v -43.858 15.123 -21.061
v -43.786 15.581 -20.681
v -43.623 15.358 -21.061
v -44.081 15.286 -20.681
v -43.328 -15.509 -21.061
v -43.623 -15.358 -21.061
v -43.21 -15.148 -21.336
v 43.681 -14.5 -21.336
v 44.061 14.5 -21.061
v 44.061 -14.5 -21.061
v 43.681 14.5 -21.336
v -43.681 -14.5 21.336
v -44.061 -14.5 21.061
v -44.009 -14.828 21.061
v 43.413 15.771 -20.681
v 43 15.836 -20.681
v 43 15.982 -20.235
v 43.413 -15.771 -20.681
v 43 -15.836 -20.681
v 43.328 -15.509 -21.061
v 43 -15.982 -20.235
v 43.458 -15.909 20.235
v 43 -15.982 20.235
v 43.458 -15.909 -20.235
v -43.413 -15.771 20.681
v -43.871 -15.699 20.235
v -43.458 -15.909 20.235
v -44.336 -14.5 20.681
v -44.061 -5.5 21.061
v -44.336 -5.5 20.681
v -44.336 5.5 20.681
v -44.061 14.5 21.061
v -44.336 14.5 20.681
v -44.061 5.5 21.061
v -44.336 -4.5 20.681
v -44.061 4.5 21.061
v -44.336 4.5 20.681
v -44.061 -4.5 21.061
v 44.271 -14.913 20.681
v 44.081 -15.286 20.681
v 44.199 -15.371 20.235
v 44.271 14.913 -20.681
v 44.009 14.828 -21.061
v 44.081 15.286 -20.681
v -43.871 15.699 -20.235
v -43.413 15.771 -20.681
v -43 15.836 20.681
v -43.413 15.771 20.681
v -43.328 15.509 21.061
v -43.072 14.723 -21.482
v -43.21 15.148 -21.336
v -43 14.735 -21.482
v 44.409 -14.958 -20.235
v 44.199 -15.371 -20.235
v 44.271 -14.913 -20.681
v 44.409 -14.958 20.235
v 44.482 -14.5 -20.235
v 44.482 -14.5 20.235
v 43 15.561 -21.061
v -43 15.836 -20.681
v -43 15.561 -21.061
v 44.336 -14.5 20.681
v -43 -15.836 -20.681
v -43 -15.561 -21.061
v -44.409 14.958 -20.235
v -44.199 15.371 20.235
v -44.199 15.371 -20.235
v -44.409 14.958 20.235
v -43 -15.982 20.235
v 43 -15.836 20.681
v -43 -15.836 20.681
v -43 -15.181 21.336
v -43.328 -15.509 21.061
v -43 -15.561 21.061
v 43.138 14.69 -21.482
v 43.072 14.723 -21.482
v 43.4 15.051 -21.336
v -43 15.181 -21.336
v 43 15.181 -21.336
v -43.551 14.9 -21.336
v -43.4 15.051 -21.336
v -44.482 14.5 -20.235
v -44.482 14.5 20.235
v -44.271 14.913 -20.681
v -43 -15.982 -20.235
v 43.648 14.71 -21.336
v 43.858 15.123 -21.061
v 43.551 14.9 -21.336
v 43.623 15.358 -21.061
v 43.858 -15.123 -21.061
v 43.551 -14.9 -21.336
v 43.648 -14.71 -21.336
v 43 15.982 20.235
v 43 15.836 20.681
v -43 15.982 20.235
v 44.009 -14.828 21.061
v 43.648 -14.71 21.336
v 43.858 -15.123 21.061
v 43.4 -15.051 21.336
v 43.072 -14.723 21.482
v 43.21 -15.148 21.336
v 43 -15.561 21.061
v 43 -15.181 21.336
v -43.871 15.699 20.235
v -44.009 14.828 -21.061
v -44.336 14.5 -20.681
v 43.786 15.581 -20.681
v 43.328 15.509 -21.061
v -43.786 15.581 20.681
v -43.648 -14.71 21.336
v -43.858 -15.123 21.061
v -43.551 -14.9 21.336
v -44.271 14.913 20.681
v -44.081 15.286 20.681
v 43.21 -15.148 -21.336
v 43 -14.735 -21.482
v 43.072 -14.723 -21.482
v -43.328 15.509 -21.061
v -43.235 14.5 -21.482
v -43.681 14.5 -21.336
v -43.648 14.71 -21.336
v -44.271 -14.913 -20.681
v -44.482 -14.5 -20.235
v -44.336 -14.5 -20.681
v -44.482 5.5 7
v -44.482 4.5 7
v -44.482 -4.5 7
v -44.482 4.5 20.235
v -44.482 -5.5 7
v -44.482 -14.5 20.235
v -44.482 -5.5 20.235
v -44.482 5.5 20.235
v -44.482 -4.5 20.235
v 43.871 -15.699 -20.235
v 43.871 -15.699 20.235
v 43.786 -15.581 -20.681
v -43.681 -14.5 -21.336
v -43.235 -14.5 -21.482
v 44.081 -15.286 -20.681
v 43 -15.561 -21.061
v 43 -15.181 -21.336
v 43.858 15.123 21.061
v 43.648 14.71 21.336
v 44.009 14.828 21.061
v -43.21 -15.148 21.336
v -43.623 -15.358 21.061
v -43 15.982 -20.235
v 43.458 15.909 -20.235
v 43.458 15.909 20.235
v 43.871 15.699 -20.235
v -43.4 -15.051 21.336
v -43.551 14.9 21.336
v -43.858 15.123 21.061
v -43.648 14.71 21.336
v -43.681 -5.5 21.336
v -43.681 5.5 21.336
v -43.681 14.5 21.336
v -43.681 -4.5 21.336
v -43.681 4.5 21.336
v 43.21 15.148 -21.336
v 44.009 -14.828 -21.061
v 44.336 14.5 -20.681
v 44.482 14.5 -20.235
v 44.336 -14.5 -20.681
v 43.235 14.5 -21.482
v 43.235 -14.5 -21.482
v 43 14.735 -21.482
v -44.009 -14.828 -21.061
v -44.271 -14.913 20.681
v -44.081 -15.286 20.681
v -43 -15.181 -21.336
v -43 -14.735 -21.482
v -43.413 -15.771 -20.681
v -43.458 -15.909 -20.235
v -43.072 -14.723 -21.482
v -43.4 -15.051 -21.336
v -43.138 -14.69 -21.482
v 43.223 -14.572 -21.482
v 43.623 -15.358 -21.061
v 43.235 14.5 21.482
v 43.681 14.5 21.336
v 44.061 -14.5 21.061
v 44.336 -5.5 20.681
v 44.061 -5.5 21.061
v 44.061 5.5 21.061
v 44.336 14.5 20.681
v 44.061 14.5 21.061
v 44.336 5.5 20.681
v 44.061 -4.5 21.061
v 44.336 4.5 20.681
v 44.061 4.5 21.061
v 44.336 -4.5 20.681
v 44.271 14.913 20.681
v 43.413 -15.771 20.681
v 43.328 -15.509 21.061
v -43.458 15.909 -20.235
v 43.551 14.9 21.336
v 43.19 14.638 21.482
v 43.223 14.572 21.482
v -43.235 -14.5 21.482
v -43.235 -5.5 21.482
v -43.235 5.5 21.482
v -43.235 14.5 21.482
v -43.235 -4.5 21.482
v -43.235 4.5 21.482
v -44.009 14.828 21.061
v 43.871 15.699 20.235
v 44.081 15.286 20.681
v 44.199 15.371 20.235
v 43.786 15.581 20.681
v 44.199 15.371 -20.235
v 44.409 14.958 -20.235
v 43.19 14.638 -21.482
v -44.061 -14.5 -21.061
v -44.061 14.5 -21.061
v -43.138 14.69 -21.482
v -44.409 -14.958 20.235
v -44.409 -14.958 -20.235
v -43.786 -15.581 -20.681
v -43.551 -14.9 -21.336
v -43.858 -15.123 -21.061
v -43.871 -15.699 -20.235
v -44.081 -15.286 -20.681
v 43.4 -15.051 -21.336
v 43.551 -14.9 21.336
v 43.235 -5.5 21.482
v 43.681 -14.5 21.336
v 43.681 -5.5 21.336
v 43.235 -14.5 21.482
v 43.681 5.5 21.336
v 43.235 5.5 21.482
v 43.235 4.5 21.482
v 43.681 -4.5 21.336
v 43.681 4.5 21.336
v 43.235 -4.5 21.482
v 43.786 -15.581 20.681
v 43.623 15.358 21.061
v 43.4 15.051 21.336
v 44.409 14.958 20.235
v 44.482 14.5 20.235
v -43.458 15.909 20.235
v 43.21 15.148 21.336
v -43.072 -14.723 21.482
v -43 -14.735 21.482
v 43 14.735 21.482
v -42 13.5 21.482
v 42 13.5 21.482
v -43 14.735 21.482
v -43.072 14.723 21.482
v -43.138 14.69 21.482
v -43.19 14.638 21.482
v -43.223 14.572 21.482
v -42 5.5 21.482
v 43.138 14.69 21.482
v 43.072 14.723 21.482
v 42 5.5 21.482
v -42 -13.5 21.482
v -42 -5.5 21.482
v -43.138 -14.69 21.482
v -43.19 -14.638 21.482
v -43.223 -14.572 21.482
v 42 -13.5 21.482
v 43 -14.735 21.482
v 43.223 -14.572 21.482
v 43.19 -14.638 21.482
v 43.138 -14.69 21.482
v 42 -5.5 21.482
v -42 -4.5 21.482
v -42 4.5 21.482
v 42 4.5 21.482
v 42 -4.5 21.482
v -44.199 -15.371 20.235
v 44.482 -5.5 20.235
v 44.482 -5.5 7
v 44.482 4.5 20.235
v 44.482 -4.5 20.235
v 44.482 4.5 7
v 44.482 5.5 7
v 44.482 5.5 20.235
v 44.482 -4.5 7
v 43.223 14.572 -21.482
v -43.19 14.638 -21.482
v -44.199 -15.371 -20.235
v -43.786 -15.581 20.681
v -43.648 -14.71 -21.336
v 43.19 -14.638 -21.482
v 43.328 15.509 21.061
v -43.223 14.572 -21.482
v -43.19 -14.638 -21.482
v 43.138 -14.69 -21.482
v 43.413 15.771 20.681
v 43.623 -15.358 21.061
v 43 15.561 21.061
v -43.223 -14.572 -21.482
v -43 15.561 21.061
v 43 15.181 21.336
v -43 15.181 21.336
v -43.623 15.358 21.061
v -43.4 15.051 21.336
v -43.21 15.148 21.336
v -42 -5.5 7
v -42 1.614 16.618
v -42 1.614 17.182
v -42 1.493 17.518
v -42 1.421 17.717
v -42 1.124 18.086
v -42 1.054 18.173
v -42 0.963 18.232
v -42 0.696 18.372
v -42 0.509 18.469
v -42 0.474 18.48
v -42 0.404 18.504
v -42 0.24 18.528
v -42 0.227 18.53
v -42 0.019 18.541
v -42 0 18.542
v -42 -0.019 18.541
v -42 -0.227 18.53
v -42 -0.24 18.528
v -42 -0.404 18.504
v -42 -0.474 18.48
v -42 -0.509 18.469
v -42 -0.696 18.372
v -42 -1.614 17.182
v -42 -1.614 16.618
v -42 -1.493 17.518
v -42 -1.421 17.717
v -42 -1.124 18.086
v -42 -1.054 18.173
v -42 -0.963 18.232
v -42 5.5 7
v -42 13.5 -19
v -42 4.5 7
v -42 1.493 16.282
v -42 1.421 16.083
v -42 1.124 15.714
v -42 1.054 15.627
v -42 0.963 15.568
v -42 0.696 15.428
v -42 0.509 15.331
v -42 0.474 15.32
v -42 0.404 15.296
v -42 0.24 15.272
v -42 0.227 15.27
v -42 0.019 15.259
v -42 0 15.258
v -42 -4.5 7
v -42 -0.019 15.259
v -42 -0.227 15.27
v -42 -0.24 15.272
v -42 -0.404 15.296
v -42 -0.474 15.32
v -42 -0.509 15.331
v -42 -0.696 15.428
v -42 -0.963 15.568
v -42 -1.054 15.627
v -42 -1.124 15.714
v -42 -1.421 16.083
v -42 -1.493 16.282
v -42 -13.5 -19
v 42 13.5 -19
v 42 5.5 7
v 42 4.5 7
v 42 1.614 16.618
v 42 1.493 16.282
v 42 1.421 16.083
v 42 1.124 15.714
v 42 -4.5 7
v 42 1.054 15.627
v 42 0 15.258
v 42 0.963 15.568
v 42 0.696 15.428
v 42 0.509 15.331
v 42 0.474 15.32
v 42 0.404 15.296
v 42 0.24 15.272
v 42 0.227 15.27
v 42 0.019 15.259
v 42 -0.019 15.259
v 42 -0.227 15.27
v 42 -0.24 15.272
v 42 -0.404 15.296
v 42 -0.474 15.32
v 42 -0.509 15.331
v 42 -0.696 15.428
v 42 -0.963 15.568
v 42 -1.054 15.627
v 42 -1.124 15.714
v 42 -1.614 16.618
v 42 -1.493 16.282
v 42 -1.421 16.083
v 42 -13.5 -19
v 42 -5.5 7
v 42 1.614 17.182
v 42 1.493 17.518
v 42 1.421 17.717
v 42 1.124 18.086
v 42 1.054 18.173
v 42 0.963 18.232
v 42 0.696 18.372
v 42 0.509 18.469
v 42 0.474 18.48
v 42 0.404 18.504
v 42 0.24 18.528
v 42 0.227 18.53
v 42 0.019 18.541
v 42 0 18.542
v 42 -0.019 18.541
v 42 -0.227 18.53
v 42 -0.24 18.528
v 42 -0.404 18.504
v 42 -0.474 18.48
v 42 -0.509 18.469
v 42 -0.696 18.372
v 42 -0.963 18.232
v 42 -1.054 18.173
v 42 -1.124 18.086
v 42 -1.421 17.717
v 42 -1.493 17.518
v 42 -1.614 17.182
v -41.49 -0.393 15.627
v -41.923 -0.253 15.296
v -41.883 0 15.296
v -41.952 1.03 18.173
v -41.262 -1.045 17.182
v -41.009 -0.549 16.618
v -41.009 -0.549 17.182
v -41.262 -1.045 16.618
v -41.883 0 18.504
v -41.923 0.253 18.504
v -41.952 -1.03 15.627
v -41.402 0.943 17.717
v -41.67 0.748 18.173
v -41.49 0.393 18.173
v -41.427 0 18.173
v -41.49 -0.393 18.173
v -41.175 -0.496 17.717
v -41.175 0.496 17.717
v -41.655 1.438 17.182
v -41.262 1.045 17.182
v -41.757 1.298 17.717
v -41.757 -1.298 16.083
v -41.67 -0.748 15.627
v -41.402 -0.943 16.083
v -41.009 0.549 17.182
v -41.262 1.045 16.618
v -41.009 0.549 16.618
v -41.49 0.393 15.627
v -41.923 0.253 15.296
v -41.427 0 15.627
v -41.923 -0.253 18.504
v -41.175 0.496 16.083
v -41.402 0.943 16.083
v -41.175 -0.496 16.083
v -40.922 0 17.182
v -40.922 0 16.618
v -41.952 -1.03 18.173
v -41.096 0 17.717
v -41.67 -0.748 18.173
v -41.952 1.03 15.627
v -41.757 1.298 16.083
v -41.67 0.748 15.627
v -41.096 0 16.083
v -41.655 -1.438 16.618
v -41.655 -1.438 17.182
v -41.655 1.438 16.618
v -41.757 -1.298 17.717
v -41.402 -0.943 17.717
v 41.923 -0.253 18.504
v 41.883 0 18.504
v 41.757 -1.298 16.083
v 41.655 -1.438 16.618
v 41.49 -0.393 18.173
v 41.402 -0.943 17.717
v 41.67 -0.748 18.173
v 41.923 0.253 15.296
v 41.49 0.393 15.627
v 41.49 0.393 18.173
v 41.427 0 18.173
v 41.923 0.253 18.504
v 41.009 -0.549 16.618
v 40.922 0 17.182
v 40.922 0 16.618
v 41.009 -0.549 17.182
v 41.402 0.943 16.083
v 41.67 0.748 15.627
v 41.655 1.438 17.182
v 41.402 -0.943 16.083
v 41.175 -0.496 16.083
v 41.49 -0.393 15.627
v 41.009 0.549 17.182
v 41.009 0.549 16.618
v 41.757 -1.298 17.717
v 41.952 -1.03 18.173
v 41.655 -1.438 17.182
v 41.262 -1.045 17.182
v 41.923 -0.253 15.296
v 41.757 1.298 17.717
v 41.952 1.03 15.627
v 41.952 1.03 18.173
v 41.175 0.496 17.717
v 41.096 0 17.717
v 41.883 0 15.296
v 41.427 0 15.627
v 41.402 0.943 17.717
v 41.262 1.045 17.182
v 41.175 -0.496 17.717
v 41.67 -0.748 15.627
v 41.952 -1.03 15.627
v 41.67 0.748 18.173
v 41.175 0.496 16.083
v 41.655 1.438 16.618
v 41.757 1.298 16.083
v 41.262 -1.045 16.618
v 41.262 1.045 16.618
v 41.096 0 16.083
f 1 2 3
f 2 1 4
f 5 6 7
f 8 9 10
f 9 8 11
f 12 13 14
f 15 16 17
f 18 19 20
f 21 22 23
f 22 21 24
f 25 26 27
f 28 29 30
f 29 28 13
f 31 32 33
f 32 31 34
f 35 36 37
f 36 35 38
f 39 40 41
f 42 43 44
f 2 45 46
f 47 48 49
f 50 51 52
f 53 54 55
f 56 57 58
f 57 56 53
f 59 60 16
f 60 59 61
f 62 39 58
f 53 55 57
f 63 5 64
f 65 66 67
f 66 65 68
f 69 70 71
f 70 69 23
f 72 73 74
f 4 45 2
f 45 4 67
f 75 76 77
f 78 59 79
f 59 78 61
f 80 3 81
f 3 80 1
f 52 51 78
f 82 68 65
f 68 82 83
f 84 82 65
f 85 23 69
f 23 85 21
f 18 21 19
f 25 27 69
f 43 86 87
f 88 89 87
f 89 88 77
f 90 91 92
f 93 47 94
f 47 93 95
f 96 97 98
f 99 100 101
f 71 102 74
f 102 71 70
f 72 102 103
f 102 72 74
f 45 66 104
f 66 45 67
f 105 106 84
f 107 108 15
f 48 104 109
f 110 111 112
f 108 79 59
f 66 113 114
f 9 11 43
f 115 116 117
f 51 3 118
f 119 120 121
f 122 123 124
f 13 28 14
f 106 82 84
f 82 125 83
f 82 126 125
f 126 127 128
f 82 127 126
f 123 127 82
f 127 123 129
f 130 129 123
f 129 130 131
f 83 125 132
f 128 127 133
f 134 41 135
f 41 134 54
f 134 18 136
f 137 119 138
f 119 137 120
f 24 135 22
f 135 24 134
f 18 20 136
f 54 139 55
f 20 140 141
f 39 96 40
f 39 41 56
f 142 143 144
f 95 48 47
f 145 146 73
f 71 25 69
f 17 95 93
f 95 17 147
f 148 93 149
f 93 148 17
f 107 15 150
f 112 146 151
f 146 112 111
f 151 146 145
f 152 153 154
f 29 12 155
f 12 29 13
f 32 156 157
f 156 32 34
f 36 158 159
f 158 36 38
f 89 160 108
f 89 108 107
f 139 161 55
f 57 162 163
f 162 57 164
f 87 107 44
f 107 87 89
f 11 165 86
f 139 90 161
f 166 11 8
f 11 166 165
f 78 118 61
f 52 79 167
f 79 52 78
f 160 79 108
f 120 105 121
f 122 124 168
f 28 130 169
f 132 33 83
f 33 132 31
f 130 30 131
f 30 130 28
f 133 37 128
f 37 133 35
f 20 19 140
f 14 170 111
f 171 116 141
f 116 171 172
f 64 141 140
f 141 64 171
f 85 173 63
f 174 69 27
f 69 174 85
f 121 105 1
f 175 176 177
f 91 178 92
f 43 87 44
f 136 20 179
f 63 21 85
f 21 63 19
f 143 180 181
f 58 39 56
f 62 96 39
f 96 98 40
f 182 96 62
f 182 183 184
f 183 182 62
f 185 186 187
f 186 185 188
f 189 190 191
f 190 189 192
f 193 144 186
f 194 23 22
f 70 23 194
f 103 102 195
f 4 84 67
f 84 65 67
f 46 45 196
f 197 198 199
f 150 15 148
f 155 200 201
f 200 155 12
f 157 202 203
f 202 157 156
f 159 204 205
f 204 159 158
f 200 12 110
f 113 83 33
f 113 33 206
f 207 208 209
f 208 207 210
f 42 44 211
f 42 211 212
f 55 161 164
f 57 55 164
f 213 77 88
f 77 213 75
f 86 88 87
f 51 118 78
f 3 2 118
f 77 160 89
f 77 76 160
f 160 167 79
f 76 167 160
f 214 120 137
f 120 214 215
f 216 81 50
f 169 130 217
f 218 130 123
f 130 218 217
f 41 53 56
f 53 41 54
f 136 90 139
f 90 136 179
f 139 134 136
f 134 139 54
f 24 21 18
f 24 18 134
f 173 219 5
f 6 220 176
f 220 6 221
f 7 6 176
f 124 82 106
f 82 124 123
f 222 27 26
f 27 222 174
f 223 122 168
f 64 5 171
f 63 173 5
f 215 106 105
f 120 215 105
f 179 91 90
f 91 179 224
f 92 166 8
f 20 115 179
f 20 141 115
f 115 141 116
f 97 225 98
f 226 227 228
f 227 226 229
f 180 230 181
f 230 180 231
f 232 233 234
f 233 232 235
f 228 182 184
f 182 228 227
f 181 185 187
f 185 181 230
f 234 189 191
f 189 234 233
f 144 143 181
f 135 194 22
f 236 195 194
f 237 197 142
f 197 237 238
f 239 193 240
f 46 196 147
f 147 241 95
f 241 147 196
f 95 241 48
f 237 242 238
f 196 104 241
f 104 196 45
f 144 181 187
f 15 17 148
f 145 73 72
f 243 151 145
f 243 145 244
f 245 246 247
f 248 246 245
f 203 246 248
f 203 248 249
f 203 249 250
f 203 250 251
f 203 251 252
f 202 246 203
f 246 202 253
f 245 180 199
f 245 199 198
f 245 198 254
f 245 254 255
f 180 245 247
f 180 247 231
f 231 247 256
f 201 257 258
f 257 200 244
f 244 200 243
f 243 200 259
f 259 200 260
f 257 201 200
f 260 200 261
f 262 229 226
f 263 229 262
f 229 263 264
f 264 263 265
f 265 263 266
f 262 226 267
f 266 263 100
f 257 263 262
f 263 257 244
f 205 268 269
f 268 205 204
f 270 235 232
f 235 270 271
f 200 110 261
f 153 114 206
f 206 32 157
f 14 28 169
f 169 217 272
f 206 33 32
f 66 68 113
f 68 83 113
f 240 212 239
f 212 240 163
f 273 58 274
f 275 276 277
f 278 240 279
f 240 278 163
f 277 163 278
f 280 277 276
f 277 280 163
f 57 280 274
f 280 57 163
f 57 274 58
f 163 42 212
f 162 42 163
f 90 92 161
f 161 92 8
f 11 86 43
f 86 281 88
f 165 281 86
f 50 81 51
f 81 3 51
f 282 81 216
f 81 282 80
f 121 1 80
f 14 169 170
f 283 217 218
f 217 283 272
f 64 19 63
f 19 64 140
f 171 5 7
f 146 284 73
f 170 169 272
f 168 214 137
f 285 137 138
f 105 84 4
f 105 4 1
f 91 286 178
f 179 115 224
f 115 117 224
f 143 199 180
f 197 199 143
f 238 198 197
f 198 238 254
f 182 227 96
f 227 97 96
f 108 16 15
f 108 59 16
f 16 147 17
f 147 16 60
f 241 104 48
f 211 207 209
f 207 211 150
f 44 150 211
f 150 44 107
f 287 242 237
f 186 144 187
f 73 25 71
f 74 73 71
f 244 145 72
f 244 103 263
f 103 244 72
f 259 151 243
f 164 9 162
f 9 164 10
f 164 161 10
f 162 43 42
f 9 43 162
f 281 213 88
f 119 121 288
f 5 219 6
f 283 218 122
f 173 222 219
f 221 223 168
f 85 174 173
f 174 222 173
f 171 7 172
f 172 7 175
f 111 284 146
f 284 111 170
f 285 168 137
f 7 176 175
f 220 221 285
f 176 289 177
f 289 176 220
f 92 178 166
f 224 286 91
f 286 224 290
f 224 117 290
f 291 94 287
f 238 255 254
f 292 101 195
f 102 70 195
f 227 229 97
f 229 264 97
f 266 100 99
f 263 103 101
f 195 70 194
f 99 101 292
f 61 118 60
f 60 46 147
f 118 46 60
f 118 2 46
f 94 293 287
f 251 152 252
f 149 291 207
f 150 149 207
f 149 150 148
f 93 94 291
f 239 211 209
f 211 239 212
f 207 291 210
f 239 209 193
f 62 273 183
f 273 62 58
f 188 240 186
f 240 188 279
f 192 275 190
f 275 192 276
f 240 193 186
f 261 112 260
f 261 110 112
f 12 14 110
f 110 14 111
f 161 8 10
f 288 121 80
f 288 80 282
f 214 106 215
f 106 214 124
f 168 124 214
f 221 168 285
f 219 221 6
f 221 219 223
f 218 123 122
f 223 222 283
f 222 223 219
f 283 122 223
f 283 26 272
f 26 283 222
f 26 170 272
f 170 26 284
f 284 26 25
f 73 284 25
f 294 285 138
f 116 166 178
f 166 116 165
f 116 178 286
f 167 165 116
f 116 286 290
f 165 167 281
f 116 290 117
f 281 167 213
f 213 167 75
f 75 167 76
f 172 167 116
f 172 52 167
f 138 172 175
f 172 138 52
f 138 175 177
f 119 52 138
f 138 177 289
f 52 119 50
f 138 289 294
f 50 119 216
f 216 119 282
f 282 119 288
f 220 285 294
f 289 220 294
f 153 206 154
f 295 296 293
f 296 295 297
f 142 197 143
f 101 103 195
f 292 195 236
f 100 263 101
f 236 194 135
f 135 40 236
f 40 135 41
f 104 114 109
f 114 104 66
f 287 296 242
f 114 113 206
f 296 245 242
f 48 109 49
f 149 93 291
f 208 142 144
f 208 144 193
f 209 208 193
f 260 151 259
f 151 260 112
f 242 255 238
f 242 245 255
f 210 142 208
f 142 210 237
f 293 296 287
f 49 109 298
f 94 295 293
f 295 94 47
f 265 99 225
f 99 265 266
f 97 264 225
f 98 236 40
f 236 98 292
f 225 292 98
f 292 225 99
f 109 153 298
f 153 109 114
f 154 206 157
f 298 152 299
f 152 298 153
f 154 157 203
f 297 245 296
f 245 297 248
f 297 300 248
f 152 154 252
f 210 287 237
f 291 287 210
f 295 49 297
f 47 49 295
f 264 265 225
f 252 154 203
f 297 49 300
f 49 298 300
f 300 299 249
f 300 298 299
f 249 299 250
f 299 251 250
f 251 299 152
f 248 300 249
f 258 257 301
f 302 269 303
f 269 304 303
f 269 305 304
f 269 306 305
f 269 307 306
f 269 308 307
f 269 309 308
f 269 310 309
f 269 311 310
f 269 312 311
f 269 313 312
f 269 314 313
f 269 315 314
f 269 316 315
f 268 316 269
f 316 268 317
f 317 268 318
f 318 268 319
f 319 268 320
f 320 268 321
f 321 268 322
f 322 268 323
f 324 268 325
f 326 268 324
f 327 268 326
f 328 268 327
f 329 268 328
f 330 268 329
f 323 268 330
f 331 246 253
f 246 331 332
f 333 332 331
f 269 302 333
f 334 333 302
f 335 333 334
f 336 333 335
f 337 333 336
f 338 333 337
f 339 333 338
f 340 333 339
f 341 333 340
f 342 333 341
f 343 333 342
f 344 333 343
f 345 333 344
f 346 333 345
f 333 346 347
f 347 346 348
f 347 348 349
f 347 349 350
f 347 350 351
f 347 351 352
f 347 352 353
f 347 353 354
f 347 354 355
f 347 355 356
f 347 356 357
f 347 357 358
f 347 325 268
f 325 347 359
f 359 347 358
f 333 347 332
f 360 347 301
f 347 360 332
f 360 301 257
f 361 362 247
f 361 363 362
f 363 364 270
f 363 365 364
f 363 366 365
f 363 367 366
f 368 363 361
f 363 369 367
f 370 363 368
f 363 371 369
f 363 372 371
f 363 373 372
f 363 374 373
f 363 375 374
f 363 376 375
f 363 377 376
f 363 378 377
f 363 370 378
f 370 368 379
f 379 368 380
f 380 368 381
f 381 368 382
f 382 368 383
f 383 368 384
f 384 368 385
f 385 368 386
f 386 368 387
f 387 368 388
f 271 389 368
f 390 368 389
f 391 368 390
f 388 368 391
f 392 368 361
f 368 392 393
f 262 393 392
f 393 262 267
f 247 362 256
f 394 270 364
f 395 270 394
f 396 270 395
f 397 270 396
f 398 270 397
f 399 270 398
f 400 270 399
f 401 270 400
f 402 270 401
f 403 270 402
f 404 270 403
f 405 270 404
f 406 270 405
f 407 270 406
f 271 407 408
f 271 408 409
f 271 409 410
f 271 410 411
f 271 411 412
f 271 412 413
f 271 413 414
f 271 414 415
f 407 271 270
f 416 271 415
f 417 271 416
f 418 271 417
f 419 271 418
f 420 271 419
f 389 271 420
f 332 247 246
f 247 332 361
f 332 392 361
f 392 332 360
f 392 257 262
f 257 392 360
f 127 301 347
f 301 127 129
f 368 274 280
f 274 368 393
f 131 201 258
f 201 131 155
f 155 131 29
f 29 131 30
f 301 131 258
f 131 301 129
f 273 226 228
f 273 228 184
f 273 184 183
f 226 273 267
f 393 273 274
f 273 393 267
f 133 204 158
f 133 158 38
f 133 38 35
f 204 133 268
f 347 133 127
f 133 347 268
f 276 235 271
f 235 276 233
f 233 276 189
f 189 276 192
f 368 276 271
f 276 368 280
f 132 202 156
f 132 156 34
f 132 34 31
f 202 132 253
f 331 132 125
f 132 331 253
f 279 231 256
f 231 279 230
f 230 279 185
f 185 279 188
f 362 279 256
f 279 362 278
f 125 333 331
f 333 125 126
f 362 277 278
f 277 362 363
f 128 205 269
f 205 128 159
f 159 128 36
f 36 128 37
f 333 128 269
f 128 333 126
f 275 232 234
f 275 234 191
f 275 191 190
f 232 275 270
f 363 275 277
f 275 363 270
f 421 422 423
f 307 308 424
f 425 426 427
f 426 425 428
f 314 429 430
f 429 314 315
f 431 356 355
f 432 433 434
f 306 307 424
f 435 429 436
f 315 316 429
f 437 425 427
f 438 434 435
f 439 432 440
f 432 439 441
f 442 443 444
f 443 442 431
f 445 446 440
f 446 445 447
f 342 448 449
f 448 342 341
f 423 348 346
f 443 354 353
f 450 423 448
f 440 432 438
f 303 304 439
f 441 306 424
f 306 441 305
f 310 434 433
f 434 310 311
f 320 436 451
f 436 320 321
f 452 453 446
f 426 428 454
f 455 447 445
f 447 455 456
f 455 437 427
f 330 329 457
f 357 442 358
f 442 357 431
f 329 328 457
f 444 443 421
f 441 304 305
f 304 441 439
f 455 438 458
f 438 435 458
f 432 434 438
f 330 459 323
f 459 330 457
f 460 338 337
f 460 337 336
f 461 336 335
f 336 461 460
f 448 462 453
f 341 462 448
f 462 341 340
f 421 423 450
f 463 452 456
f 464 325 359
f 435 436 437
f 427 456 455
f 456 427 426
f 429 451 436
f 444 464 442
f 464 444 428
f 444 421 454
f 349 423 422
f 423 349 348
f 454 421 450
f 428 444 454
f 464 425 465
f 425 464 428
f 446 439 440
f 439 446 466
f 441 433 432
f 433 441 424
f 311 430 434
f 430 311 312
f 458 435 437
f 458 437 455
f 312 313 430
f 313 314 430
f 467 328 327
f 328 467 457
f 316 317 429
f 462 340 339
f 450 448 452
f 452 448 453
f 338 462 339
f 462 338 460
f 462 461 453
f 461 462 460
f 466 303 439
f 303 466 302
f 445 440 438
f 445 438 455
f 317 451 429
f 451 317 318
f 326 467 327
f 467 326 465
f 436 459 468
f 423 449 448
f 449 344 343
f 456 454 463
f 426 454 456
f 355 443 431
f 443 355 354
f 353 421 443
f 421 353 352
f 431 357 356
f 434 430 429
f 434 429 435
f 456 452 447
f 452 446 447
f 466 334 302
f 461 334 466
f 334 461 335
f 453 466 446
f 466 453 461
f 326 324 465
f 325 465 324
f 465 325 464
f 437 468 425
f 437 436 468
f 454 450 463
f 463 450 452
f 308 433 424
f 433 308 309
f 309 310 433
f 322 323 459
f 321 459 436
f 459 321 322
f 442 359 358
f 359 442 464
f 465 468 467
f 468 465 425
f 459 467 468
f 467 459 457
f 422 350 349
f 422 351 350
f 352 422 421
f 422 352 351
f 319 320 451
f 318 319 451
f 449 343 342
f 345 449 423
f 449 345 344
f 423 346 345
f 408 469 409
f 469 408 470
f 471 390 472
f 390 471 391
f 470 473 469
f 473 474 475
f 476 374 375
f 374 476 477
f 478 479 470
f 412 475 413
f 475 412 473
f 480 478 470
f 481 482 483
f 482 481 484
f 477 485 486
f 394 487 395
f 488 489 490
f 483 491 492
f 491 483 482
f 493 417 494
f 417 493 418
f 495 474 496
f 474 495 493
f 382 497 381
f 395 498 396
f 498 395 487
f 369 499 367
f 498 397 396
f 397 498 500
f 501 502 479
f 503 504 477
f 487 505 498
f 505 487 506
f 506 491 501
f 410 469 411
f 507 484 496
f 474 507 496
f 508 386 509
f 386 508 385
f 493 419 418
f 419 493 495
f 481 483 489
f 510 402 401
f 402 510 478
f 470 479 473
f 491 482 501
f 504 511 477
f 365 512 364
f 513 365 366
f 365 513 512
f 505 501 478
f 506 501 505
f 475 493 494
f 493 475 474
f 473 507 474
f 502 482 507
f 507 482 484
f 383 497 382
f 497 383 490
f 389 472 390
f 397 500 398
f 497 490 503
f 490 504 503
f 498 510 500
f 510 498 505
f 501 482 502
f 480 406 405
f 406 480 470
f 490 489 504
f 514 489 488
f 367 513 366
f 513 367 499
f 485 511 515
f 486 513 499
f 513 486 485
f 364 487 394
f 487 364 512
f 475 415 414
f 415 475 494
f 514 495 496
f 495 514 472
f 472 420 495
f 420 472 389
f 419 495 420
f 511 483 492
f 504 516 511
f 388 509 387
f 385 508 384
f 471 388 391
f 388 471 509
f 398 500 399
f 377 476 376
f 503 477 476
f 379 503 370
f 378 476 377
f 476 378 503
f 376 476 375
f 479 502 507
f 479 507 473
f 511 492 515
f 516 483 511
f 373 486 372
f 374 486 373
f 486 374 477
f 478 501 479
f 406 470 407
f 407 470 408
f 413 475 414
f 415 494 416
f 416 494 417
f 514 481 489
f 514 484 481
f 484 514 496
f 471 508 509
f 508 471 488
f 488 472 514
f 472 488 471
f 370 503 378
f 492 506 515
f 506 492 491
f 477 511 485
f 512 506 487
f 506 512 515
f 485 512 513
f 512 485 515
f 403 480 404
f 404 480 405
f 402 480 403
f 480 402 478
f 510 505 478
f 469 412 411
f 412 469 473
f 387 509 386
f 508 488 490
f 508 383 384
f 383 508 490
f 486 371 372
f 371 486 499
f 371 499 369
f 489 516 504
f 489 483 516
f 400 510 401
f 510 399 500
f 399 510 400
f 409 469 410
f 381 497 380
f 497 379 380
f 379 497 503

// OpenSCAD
//
// cap.scad
//
// (c) 2019 Prof Dr Andreas Müller, Hochschule Rapperswil
//
w = 27;
l = 84;
h = 40;
radius = 1.5;
s = 1.8;
wall = 2;
offset = 4.6;
depth = 13;

faces = 20;

module body() {
	difference() {
		minkowski() {
			cube([l + wall, w + wall, h], center = true);
			sphere(r = radius, $fn = faces);
		}
		translate([0, 0, 1 + 5])
			cube([l, w, h + 10], center = true);
        translate([0, -5, h - depth])
            cube([l + 10, 1, h], center = true);
        translate([0, +5, h - depth])
            cube([l + 10, 1, h], center = true);
	}
    translate([-(l + wall)/2 - radius + s, 0, h/2 + radius - offset])
        sphere(r = s, $fn = faces);
    translate([+(l + wall)/2 + radius - s, 0, h/2 + radius - offset])
        sphere(r = s, $fn = faces);
}

body();
